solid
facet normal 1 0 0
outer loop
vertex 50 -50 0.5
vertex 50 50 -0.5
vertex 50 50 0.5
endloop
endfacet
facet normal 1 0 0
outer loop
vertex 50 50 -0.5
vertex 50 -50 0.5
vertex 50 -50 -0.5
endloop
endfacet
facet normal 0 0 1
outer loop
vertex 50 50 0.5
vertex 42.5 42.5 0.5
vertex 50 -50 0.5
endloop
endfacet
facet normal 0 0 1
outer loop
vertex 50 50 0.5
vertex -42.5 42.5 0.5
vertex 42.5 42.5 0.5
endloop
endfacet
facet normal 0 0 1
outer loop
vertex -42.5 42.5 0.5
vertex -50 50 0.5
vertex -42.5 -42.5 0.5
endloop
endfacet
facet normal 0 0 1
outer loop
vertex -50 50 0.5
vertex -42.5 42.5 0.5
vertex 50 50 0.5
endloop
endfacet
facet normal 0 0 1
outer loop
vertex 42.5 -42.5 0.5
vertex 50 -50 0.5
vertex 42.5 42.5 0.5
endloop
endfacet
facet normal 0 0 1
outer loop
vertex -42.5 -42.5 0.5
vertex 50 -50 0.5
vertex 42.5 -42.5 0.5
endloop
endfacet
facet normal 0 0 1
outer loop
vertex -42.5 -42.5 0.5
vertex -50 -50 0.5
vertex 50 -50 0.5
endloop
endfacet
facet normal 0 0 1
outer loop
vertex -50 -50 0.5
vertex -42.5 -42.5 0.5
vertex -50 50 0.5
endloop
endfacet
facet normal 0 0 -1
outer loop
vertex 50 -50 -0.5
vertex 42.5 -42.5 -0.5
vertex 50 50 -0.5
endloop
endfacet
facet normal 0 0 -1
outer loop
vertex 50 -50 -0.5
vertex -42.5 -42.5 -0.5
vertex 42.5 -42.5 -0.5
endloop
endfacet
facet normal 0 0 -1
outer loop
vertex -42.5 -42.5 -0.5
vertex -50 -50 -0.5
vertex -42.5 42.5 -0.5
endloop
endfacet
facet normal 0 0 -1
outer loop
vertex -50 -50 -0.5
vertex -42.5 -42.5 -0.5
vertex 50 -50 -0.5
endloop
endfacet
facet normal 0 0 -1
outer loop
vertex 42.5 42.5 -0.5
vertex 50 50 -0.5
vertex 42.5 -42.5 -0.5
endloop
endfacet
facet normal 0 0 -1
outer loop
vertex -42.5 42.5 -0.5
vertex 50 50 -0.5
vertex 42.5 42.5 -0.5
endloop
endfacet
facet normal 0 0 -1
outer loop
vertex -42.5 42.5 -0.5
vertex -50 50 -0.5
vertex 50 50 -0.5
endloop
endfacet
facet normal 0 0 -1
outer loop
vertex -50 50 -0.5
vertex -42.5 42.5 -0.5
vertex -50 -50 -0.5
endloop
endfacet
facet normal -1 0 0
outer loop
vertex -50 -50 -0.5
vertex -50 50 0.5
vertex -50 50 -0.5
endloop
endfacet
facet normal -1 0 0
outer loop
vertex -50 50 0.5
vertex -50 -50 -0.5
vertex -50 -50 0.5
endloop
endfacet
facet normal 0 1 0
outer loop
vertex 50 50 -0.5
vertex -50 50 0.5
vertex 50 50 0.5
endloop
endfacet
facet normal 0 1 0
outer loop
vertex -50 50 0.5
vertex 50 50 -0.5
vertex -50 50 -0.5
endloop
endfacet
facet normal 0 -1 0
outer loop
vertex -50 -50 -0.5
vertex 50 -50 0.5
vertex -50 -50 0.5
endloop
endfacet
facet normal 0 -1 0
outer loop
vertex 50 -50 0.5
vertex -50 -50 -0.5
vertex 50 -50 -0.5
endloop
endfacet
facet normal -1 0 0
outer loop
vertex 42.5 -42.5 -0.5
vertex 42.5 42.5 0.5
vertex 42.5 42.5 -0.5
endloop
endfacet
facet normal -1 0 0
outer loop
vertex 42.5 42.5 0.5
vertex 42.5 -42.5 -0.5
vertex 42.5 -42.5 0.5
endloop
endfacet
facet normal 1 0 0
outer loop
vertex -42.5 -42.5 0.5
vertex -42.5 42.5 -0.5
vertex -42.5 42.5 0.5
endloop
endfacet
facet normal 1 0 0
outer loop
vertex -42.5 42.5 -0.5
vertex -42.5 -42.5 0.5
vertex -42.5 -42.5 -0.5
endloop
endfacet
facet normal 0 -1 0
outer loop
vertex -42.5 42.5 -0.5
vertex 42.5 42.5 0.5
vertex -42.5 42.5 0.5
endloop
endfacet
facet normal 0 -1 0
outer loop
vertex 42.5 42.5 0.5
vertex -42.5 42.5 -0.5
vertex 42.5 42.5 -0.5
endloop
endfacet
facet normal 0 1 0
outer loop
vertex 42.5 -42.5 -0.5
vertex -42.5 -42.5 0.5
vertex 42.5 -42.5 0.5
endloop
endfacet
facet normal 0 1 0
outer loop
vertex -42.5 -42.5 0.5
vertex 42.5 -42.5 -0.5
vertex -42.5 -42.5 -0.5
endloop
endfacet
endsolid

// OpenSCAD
$fn = $preview ? 64 : 256;

x = 100;
y = x;
z = 1;
border = 15;

difference() {
	cube([x, y, z], true);
	cube([x-border, y-border, z+1], true);
}
